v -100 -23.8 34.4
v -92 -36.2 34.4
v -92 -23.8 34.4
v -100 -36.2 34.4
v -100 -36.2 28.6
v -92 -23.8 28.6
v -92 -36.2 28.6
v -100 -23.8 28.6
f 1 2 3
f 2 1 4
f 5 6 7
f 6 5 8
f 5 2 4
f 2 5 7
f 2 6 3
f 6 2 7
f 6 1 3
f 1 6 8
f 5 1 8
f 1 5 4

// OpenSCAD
// file: ../md_vitamins.scad
// Envelopes of the bought electronics, placed where the parts expect them (for fit checks and renders)
SG90_STL = "/Users/hemangvora/OpenDuck/upstream/Open_Duck_Mini/mini_bdx/robots/open_duck_mini_v2/sg90.stl";
module v_sg90_jaw() multmatrix([[1,0,0,JAW_P[0]-5.7],[0,0,-1,-SG_BASE],[0,1,0,JAW_P[1]],[0,0,0,1]]) import(SG90_STL);
module v_radxa() {                         // Radxa Zero 3W 65 x 30 board on 6 mm standoffs + 16 mm component/wire budget
    translate([RADXA_X0, RADXA_Y0, CH_Z1 + 6]) { cube([65, 30, 1.6]); translate([2, 2, 1.6]) cube([61, 26, 16]); translate([0, 0, -2]) cube([65, 30, 2]); }
}
module v_buck() translate([-30, -13.5, CH_Z1 + 1]) cube([46, 27, 12]);            // XY-3606 (HW-688), generous envelope
module v_camera() translate([103.8, -12.5, EYE_C[1] - 14.5]) { cube([1.0, 25, 24]); translate([1.0, 12.5 - 4.25, 14.5 - 4.25]) cube([5.2, 8.5, 8.5]); }  // Pi cam v2 / IMX219 board + lens module
module v_tof() translate([103.8, -6.5, TOF_C[1] - 6.5]) { cube([1.0, 13, 13]); translate([1.0, 6.5 - 3.2, 6.5 - 1.5]) cube([1.75, 6.4, 3.0]); }
module head_vitamins() { v_sg90_jaw(); v_radxa(); v_buck(); v_camera(); v_tof(); }

// ---------------- body electronics ----------------
module v_pack()    translate([DK_X0, -PACK[1] / 2, DK_Z1]) cube(PACK);                       // 3S1P Samsung 30Q pack
module v_bms()     translate([DK_X0 + 5, -31, DK_Z1 + PACK[2] + 0.5]) cube([48, 62, 7]);      // 3S 40 A BMS, 5-FET board
module v_adapter() translate([-44, -21, SHELF[4] + 4]) { cube([33, 42, 1.6]); translate([1, 1, 1.6]) cube([31, 40, 10]); }   // Bus Servo Adapter (A)
module v_switch()  {   // AUTO MT 12 V 20 A toggle, 12 mm hole; body 28 x 16 behind the panel, cover outside
    translate([DK_X0, SWITCH_C[0] - 14, SWITCH_C[1] - 8]) cube([45, 28, 16]);
    translate([BX_R - 25, SWITCH_C[0] - 14, SWITCH_C[1] - 8]) cube([25, 28, 16]);
}
module v_xt30()    translate([DK_X0, XT30_C[0] - 5.1, XT30_C[1] - 2.6]) cube([16, 10.2, 5.2]);
module v_balance() translate([DK_X0, BAL_C[0] - 6.2, BAL_C[1] - 2.9]) cube([8, 12.4, 5.8]);
module v_caps()    for (y = [26, 33]) translate([-40, y, SHELF[4] + 5.3]) rotate([0, 90, 0]) cylinder(d = 10.2, h = 21);  // 2 x 1000 uF 25 V lying on the shelf
module body_vitamins() { v_pack(); v_bms(); v_adapter(); v_switch(); v_xt30(); v_balance(); v_caps(); }
// file: ../md_params.scad
// =====================================================================
//  Microduck-look skin for the Open Duck Mini v2 skeleton
//  Shared parameters and helpers.
//  Frame: Open Duck print/robot frame, mm. +x forward, +y left, +z up.
//  Every part is modelled where it sits on the robot (zero pose).
// =====================================================================

$fn = 72;
EPS = 0.01;

// ---------- fasteners ----------
INSERT_D   = 4.0;   // hole for M3 x 5 brass heat-set insert (Amazon B0DZ8B7FW1)
INSERT_L   = 6.0;   // hole depth for that insert
M3_CLR     = 3.4;   // M3 clearance
M3_HEAD    = 6.5;   // M3 socket-head counterbore
M3_NUT     = 6.4;   // M3 nut across corners (+clearance)
M2_TAP     = 1.8;   // M2 self-tapping pilot (SG90 tab screws, servo adapter)
M25_TAP    = 2.2;   // M2.5 self-tapping pilot (Radxa)
M2_CLR     = 2.4;

// ---------- colours (for previews only) ----------
C_WHITE = [0.95, 0.94, 0.90];
C_BLACK = [0.13, 0.13, 0.14];

// ---------- helpers ----------
function lerp(a, b, t) = a + (b - a) * t;

// Section with vertical sides from zb to zc and a superellipse cap from zc to zt.
// Points are (y, z). n = 2 gives an ellipse, larger n gives a squarer top.
function se_pts(w, zb, zc, zt, n, N = 56) =
    concat(
        [[ w, zb]],
        [for (i = [0:N]) let(t = i * 180 / N, c = cos(t), s = sin(t))
            [w * sign(c) * pow(abs(c), 2 / n), zc + (zt - zc) * pow(abs(s), 2 / n)]],
        [[-w, zb]]
    );

// st = [x, half_width, z_bottom, z_curve_start, z_top, exponent]
module station(st, inset = 0, ext = 0) {
    translate([st[0], 0, 0]) rotate([90, 0, 90])
        linear_extrude(height = EPS, center = true)
            offset(delta = -inset)
                polygon(se_pts(st[1], st[2] - ext, st[3], st[4], st[5]));
}

// piecewise loft through convex stations (hull of neighbours)
module loft(sts, inset = 0, ext = 0) {
    for (i = [0:len(sts) - 2])
        hull() { station(sts[i], inset, ext); station(sts[i + 1], inset, ext); }
}

// station parameters interpolated at any x inside the list
function st_at(sts, x) =
    let(i = max([for (k = [0:len(sts) - 2]) if (sts[k][0] <= x) k]),
        a = sts[i], b = sts[i + 1], t = (x - a[0]) / (b[0] - a[0]))
    [x, lerp(a[1], b[1], t), lerp(a[2], b[2], t), lerp(a[3], b[3], t),
        lerp(a[4], b[4], t), lerp(a[5], b[5], t)];

// heat-set insert pocket: opening at origin, going along -z by default
module insert_hole(depth = INSERT_L, d = INSERT_D) {
    translate([0, 0, -depth]) cylinder(d = d, h = depth + EPS);
    translate([0, 0, -0.6]) cylinder(d1 = d, d2 = d + 0.8, h = 0.6 + EPS);   // lead-in chamfer
}

// M3 clearance with counterbore, axis +z, counterbore at the top
module m3_cb(len_total, cb_depth) {
    translate([0, 0, -EPS]) cylinder(d = M3_CLR, h = len_total + 2 * EPS);
    translate([0, 0, len_total - cb_depth]) cylinder(d = M3_HEAD, h = cb_depth + 1);
}

module rrect(x0, x1, y0, y1, r) {
    translate([x0 + r, y0 + r]) offset(r = r) square([x1 - x0 - 2 * r, y1 - y0 - 2 * r]);
}
// main file
include <../md_params.scad>
include <../md_head.scad>
include <../md_body.scad>
include <../md_vitamins.scad>
v_balance();
